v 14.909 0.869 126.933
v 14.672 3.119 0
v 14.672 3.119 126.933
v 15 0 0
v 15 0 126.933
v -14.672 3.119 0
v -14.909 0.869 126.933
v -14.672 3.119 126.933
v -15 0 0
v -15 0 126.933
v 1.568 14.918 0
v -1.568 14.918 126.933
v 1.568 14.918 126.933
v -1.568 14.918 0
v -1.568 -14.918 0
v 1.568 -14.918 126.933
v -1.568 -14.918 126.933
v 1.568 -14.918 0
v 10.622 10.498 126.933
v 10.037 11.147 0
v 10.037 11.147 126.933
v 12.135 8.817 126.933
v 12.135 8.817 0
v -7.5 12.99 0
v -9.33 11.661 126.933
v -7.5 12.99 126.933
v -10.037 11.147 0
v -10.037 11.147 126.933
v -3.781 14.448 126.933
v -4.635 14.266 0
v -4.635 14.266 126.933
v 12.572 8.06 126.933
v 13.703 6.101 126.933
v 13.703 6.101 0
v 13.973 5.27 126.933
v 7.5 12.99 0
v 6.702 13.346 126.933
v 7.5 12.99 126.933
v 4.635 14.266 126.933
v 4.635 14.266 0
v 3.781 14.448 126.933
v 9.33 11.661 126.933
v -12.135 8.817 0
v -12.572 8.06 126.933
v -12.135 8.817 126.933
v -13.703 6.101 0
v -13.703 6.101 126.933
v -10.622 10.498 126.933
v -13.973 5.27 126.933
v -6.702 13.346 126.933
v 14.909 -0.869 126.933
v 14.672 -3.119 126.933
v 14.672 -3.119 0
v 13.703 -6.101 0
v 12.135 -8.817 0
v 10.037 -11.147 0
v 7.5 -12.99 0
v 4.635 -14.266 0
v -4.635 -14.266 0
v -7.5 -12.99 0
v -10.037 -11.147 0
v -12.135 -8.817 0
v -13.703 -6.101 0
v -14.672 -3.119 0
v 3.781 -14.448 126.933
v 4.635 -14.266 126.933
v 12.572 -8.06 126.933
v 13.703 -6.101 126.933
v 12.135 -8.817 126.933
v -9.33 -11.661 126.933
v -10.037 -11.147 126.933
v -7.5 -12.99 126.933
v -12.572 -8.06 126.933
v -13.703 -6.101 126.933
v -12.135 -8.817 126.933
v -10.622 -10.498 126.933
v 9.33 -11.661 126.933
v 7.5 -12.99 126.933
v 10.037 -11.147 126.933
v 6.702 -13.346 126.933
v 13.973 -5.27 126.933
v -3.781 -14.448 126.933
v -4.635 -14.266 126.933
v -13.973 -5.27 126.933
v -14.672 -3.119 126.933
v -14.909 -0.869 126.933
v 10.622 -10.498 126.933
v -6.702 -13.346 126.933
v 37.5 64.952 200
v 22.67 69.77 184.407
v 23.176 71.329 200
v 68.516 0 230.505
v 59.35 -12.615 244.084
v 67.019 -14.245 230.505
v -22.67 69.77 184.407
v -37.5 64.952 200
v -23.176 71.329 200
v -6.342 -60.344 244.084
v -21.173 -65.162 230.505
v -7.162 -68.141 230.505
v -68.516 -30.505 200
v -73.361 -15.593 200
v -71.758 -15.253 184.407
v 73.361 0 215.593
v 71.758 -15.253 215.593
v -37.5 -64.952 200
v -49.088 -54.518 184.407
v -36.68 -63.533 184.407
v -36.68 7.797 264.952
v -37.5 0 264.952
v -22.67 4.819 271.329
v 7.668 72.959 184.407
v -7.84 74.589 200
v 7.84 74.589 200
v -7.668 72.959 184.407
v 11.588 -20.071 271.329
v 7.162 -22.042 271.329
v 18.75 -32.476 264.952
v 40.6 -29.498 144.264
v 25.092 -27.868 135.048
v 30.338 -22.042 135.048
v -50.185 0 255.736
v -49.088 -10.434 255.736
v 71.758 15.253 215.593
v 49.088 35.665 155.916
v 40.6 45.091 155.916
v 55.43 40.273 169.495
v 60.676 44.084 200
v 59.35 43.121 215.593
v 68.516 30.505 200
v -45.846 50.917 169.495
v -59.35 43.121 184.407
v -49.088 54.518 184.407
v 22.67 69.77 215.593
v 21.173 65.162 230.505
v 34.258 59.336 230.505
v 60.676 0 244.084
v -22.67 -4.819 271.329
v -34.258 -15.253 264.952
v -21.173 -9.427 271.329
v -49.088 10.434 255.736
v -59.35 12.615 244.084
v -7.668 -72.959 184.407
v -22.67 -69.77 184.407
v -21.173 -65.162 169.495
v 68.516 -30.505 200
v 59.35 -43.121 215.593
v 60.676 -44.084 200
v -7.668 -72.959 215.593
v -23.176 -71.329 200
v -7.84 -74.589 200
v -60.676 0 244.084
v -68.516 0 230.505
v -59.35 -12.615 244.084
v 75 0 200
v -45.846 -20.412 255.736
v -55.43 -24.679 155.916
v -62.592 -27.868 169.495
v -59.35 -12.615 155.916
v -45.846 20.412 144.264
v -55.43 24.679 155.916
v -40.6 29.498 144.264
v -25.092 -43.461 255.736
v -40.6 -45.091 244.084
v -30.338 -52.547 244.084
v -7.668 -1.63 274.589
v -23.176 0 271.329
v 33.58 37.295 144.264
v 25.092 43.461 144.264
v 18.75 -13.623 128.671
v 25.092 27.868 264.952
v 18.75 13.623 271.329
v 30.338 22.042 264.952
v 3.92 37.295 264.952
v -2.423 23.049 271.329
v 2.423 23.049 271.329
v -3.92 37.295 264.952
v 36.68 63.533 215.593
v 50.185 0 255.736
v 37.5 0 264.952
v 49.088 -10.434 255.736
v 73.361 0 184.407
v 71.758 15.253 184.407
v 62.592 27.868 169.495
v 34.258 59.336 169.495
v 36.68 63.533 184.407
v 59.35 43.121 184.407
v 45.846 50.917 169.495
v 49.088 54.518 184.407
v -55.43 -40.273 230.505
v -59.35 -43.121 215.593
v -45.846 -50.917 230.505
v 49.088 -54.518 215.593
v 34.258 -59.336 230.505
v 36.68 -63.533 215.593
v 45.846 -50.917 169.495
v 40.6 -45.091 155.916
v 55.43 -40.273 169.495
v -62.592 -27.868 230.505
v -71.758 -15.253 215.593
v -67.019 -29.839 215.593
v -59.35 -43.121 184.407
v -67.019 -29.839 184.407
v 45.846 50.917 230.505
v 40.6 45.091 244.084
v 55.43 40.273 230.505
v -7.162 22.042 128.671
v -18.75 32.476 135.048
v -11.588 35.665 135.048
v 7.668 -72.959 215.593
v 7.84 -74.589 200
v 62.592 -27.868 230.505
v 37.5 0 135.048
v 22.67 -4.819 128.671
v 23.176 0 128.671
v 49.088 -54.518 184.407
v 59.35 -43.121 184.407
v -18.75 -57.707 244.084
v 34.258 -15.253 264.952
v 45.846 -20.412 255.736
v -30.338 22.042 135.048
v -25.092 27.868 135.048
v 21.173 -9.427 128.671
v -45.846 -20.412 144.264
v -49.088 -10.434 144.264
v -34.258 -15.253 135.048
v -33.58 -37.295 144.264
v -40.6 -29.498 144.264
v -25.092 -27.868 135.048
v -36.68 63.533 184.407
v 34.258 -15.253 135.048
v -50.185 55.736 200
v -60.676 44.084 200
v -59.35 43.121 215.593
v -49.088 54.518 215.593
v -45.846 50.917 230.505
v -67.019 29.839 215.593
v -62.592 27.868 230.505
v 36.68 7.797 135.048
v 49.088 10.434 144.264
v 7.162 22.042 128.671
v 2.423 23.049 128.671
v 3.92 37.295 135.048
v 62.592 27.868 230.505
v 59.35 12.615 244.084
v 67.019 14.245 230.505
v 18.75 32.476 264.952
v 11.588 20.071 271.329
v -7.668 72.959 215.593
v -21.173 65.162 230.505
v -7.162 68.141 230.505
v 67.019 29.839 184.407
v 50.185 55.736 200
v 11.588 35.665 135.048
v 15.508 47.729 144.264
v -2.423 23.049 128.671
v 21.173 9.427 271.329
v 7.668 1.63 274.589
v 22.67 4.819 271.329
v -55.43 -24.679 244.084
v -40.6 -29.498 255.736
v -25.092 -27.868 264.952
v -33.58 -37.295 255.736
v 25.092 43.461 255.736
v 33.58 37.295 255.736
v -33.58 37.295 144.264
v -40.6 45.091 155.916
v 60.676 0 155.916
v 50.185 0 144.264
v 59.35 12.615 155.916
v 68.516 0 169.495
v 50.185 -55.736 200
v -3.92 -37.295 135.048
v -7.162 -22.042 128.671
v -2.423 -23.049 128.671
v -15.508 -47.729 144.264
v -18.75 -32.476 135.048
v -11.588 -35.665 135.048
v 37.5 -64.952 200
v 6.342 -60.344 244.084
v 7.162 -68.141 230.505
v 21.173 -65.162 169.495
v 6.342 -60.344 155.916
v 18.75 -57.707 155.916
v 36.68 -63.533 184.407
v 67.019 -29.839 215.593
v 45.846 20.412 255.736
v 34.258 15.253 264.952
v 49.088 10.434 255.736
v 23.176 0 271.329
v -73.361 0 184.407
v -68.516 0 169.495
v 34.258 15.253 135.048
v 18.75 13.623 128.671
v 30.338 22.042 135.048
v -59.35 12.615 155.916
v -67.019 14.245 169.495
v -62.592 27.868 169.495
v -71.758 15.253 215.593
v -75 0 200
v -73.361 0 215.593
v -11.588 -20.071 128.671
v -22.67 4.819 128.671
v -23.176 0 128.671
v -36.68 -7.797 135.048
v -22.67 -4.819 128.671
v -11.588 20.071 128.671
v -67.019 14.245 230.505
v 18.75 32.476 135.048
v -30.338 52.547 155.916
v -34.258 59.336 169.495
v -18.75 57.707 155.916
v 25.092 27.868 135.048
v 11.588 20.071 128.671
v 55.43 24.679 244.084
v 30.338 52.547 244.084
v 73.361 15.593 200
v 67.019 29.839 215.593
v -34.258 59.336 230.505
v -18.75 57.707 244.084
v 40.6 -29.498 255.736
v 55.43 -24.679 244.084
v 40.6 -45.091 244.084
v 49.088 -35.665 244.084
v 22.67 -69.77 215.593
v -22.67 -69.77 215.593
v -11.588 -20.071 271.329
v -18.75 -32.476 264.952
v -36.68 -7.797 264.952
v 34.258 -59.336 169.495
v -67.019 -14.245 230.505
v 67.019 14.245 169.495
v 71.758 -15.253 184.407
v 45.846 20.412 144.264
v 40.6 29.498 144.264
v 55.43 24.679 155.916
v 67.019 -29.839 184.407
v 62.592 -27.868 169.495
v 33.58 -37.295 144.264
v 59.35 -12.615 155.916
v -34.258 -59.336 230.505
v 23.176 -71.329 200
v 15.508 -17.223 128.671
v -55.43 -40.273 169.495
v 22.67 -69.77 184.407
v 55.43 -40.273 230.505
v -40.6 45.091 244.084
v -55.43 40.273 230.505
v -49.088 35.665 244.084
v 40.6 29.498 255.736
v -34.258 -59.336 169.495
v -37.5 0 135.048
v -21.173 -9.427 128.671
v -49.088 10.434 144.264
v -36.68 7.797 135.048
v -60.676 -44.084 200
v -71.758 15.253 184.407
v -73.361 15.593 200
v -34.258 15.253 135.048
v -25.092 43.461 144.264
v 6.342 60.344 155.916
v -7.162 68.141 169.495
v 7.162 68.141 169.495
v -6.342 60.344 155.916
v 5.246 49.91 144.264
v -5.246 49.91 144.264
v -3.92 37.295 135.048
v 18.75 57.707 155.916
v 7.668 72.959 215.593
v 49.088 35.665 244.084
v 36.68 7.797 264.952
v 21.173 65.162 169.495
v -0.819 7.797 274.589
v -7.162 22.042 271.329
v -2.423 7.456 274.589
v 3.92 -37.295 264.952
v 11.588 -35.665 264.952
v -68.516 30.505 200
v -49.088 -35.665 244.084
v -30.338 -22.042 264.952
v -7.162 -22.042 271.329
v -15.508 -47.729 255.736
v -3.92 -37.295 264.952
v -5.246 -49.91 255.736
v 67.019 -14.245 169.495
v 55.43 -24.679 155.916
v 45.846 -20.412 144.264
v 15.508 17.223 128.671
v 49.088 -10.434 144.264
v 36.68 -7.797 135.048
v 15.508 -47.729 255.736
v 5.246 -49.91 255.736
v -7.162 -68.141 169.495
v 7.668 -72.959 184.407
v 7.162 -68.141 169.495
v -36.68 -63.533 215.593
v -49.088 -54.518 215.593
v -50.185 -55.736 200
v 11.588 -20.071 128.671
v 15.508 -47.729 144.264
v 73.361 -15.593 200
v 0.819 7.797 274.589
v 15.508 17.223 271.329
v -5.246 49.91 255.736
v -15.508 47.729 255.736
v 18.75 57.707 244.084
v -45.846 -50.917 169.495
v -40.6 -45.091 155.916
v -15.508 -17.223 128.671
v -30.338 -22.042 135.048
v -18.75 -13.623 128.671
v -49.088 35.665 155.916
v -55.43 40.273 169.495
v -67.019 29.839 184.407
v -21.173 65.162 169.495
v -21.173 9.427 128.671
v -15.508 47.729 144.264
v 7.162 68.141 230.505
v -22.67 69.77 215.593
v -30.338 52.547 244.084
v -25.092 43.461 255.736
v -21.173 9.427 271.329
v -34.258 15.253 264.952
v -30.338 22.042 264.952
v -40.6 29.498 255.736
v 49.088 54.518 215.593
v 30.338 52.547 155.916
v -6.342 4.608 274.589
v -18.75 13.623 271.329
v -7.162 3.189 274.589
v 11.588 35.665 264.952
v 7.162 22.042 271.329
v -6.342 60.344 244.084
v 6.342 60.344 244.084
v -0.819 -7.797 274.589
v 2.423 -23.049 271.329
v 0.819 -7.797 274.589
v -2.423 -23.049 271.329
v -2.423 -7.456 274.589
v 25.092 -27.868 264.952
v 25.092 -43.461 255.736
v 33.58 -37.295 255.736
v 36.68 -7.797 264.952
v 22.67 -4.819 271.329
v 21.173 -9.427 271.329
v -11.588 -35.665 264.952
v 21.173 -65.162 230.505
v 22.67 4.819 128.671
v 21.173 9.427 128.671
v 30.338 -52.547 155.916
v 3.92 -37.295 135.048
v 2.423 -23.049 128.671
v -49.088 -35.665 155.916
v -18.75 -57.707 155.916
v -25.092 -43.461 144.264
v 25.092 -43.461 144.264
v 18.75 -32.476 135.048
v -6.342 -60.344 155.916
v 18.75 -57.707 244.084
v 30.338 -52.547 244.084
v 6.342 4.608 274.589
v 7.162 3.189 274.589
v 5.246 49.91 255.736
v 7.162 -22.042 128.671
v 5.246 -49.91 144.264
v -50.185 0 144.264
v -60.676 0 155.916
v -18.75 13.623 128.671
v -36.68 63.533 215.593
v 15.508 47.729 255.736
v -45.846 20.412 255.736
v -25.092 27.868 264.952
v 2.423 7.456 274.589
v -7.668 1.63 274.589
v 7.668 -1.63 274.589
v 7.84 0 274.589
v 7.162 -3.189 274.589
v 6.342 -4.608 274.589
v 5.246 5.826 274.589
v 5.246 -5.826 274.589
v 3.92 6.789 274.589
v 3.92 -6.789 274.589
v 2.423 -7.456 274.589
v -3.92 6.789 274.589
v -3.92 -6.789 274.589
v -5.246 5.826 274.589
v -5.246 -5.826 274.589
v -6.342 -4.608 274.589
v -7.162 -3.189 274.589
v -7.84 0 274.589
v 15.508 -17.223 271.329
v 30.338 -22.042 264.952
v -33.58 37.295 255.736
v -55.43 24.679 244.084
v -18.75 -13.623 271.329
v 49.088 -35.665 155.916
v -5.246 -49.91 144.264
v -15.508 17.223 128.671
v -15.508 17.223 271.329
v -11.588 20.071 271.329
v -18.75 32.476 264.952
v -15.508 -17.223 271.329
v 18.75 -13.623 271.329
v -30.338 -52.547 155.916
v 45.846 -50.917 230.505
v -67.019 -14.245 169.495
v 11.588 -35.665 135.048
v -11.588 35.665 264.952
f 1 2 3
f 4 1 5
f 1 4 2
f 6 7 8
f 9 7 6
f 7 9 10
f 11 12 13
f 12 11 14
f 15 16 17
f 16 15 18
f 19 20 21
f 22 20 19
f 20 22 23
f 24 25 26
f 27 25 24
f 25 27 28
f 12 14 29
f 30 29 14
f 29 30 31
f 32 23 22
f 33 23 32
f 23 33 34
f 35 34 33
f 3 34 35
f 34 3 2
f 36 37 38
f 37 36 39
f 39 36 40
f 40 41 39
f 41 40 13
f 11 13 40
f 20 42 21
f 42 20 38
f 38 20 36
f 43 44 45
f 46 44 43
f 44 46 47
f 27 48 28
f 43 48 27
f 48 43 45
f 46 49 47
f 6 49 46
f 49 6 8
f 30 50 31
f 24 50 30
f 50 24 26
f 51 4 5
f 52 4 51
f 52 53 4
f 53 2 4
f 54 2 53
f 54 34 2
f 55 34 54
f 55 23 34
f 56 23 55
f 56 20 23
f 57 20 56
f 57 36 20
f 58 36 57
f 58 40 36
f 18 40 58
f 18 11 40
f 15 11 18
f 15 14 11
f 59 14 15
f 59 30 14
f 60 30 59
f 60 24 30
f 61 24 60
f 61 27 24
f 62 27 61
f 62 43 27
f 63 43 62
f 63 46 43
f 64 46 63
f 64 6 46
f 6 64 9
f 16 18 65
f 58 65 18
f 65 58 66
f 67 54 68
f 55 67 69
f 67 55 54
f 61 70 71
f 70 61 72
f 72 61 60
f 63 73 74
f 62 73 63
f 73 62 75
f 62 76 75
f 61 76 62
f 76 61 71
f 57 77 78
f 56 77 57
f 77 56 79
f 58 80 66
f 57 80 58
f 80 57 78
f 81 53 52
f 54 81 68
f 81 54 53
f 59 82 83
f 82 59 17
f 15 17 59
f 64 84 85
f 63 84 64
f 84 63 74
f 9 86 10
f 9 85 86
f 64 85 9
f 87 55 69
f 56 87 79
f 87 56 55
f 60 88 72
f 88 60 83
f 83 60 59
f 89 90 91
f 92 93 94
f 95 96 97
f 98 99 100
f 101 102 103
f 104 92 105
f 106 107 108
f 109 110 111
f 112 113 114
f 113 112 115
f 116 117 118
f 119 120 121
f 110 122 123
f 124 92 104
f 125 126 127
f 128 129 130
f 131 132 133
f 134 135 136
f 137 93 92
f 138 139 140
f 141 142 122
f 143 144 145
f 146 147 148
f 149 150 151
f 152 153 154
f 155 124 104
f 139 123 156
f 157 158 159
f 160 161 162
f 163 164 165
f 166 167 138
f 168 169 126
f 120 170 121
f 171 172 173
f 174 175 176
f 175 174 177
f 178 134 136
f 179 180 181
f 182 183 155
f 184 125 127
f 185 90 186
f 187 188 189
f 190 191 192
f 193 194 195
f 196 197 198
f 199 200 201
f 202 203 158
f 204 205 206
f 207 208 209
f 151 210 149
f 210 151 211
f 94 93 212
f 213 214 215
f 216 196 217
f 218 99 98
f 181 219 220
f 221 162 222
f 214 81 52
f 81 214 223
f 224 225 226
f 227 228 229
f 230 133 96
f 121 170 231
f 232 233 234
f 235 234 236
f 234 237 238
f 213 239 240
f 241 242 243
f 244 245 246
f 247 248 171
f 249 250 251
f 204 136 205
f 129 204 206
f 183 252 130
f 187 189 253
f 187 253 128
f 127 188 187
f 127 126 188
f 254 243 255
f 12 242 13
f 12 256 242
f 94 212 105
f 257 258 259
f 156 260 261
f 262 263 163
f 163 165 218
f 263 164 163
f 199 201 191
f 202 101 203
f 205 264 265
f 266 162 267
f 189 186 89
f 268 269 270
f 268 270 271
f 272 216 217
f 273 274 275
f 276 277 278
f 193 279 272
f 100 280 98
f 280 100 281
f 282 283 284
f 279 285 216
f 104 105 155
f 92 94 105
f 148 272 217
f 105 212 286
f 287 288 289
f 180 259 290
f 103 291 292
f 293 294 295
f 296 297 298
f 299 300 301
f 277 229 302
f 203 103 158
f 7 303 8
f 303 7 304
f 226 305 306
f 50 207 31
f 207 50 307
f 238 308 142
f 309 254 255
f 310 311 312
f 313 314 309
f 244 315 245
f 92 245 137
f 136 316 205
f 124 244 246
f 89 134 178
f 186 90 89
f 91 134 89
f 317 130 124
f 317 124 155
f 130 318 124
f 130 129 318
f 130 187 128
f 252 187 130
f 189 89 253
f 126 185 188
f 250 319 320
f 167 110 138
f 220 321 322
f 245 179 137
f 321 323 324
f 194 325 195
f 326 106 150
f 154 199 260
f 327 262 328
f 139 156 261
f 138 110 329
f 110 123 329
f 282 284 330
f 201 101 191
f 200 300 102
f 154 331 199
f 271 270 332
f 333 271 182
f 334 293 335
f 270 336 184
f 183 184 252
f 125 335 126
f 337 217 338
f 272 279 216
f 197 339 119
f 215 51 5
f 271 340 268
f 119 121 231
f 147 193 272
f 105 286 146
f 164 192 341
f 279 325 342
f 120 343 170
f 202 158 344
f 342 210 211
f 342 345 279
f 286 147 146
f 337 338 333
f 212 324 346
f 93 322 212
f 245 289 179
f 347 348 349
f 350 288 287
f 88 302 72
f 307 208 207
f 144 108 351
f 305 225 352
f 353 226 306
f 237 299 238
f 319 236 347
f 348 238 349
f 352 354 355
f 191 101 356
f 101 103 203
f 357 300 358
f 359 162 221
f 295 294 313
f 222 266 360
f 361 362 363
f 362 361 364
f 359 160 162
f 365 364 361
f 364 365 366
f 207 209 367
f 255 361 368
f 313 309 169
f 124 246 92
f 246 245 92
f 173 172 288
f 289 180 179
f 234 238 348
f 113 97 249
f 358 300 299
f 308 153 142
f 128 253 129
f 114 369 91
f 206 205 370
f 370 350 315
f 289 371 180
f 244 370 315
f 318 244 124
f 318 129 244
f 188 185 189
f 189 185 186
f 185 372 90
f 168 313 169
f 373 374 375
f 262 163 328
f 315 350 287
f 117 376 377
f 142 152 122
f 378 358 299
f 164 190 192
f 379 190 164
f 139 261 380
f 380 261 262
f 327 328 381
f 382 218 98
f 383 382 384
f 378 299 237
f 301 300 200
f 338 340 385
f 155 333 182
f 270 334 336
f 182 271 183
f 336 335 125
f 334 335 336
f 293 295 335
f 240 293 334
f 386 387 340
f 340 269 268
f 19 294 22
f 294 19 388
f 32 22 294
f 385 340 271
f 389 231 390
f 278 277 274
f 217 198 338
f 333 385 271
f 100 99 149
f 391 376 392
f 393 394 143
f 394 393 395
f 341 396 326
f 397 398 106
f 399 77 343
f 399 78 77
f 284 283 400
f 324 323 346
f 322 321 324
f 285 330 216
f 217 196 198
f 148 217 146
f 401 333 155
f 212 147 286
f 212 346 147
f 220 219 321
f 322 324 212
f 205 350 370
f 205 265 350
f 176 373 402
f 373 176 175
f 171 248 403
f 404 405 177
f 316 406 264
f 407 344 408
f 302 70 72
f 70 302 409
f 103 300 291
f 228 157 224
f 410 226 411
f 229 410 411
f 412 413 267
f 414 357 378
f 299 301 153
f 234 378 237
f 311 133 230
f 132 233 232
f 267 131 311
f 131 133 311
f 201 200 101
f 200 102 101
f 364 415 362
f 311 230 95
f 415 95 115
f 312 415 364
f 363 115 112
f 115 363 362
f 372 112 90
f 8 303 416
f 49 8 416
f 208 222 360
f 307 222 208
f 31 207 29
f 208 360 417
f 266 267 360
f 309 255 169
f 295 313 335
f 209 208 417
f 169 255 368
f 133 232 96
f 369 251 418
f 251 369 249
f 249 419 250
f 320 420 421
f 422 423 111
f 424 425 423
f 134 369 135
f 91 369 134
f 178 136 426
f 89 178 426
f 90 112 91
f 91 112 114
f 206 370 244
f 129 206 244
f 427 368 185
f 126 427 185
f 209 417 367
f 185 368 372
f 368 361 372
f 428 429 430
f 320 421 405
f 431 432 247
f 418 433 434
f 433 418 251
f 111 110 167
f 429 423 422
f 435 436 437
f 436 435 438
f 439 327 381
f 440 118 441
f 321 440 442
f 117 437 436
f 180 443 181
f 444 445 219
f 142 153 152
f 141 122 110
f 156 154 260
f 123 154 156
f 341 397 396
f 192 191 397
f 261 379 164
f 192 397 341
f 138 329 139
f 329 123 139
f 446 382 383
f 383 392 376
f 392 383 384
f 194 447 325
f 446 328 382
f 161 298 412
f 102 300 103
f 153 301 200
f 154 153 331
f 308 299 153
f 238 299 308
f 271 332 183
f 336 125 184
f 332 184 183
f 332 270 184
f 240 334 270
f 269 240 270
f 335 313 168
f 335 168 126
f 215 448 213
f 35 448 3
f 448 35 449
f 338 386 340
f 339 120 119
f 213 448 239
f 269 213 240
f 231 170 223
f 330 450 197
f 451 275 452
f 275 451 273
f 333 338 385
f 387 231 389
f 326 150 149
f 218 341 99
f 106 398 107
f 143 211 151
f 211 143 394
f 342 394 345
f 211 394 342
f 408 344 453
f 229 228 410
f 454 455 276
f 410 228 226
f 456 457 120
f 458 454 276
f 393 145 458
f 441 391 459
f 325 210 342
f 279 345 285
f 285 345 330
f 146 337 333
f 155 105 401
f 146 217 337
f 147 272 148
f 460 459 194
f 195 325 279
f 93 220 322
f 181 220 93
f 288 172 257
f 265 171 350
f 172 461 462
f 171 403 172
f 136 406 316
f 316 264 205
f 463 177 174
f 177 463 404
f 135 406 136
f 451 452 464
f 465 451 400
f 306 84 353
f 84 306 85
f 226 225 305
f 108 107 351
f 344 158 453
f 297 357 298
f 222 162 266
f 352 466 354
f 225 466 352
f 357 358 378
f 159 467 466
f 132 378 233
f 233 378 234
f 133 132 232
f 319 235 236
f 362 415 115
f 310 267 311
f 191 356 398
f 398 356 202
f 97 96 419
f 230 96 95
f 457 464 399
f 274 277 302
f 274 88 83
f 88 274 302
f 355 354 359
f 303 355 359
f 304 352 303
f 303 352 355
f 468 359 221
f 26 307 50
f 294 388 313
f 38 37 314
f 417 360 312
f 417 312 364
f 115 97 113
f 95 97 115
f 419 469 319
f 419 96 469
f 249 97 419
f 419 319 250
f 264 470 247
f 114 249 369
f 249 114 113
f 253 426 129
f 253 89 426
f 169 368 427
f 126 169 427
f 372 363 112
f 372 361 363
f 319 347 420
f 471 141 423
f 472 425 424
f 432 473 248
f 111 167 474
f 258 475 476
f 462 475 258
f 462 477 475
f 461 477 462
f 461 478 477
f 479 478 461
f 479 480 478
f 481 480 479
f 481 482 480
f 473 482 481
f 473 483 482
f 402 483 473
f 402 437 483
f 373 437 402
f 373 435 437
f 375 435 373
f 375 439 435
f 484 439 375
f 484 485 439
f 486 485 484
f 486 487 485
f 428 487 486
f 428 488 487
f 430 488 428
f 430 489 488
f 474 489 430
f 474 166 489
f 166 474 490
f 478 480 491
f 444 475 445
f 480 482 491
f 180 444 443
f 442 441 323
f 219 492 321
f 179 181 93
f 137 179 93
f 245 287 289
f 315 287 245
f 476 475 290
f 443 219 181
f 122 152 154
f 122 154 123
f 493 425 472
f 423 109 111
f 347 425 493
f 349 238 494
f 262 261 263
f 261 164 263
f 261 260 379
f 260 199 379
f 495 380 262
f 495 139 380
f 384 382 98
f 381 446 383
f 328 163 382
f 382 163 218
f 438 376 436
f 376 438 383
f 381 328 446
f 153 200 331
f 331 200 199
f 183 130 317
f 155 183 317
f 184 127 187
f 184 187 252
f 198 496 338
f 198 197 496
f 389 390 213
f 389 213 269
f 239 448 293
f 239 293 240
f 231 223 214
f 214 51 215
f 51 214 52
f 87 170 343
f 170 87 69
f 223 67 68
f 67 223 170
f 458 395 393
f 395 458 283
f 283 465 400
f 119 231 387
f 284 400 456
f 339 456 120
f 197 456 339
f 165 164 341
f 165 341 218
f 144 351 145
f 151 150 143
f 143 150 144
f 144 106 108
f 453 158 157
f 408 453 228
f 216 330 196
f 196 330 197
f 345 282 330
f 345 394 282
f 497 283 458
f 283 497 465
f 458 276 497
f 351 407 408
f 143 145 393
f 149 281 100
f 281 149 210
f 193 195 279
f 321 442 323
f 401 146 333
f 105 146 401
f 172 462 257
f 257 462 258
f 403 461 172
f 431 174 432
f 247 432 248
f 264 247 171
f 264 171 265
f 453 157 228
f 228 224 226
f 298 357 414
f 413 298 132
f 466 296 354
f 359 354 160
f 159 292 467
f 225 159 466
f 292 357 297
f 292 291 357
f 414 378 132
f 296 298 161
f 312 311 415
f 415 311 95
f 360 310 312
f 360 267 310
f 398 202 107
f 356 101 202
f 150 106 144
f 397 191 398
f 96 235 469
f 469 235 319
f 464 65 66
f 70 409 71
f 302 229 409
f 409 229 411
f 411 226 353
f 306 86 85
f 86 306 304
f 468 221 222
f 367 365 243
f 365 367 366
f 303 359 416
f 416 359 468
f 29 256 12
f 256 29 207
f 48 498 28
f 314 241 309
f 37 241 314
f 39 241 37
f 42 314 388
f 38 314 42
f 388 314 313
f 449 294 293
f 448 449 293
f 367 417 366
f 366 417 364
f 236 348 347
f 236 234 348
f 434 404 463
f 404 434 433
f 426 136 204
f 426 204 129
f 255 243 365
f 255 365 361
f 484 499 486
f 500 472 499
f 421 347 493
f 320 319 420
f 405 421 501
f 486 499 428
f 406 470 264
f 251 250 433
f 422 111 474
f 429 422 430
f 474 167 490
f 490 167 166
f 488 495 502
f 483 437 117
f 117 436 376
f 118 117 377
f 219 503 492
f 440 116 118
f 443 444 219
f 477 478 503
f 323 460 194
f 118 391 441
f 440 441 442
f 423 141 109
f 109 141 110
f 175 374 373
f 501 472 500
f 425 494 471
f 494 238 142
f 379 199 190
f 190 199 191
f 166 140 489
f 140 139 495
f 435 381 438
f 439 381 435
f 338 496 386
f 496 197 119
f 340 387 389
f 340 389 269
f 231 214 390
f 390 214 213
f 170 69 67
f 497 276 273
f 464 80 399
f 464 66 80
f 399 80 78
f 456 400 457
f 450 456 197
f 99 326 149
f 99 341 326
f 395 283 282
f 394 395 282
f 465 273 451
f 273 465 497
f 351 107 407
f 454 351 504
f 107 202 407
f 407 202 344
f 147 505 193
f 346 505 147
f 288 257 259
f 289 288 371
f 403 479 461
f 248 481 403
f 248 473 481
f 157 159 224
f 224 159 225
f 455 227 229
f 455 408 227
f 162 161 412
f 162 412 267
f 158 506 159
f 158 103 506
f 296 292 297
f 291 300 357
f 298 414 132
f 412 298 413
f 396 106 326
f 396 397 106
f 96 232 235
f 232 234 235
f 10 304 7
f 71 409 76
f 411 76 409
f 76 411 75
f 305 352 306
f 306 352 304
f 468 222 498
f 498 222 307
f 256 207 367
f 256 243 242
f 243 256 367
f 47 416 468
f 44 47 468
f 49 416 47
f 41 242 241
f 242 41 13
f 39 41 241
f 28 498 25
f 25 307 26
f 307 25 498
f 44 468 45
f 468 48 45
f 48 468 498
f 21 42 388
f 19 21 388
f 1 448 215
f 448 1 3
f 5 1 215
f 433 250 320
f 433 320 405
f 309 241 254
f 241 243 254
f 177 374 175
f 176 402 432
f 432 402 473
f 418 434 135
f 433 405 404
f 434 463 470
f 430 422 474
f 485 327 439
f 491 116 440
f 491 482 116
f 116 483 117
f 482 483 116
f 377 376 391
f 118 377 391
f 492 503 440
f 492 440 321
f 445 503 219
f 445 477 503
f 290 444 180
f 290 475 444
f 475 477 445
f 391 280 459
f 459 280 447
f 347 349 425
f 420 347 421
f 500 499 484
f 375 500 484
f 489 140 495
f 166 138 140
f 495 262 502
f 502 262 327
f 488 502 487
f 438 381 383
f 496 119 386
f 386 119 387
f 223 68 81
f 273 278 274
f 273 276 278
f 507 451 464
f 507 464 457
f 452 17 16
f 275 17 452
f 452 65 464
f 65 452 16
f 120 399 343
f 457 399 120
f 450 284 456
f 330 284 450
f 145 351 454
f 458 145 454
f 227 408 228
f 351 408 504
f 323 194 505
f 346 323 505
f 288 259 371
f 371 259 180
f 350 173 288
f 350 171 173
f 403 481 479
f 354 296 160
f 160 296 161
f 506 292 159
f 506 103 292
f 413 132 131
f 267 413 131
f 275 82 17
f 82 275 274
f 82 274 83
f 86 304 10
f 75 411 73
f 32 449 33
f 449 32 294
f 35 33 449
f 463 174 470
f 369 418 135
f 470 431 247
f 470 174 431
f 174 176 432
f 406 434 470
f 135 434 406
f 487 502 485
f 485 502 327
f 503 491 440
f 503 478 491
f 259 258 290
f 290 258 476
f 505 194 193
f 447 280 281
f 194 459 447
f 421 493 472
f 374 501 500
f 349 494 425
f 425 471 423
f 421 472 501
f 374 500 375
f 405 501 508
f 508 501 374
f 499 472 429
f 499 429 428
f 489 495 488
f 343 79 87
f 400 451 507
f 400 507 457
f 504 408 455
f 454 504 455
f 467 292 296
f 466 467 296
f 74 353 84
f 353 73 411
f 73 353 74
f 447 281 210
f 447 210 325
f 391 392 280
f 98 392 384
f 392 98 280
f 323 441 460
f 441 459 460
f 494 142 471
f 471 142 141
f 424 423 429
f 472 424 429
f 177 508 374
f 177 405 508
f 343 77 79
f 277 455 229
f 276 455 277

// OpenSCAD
module trunk() {
    // Create the tree trunk (cylinder)
    cylinder(h=200, d=30, center=false);
}

module canopy() {
    // Create the tree canopy (sphere)
    translate([0, 0, 200]) {
        sphere(d=150);
    }
}

module oak_tree() {
    // Combine trunk and canopy to form the tree
    trunk();
    canopy();
}

// Render the complete oak tree
oak_tree();
